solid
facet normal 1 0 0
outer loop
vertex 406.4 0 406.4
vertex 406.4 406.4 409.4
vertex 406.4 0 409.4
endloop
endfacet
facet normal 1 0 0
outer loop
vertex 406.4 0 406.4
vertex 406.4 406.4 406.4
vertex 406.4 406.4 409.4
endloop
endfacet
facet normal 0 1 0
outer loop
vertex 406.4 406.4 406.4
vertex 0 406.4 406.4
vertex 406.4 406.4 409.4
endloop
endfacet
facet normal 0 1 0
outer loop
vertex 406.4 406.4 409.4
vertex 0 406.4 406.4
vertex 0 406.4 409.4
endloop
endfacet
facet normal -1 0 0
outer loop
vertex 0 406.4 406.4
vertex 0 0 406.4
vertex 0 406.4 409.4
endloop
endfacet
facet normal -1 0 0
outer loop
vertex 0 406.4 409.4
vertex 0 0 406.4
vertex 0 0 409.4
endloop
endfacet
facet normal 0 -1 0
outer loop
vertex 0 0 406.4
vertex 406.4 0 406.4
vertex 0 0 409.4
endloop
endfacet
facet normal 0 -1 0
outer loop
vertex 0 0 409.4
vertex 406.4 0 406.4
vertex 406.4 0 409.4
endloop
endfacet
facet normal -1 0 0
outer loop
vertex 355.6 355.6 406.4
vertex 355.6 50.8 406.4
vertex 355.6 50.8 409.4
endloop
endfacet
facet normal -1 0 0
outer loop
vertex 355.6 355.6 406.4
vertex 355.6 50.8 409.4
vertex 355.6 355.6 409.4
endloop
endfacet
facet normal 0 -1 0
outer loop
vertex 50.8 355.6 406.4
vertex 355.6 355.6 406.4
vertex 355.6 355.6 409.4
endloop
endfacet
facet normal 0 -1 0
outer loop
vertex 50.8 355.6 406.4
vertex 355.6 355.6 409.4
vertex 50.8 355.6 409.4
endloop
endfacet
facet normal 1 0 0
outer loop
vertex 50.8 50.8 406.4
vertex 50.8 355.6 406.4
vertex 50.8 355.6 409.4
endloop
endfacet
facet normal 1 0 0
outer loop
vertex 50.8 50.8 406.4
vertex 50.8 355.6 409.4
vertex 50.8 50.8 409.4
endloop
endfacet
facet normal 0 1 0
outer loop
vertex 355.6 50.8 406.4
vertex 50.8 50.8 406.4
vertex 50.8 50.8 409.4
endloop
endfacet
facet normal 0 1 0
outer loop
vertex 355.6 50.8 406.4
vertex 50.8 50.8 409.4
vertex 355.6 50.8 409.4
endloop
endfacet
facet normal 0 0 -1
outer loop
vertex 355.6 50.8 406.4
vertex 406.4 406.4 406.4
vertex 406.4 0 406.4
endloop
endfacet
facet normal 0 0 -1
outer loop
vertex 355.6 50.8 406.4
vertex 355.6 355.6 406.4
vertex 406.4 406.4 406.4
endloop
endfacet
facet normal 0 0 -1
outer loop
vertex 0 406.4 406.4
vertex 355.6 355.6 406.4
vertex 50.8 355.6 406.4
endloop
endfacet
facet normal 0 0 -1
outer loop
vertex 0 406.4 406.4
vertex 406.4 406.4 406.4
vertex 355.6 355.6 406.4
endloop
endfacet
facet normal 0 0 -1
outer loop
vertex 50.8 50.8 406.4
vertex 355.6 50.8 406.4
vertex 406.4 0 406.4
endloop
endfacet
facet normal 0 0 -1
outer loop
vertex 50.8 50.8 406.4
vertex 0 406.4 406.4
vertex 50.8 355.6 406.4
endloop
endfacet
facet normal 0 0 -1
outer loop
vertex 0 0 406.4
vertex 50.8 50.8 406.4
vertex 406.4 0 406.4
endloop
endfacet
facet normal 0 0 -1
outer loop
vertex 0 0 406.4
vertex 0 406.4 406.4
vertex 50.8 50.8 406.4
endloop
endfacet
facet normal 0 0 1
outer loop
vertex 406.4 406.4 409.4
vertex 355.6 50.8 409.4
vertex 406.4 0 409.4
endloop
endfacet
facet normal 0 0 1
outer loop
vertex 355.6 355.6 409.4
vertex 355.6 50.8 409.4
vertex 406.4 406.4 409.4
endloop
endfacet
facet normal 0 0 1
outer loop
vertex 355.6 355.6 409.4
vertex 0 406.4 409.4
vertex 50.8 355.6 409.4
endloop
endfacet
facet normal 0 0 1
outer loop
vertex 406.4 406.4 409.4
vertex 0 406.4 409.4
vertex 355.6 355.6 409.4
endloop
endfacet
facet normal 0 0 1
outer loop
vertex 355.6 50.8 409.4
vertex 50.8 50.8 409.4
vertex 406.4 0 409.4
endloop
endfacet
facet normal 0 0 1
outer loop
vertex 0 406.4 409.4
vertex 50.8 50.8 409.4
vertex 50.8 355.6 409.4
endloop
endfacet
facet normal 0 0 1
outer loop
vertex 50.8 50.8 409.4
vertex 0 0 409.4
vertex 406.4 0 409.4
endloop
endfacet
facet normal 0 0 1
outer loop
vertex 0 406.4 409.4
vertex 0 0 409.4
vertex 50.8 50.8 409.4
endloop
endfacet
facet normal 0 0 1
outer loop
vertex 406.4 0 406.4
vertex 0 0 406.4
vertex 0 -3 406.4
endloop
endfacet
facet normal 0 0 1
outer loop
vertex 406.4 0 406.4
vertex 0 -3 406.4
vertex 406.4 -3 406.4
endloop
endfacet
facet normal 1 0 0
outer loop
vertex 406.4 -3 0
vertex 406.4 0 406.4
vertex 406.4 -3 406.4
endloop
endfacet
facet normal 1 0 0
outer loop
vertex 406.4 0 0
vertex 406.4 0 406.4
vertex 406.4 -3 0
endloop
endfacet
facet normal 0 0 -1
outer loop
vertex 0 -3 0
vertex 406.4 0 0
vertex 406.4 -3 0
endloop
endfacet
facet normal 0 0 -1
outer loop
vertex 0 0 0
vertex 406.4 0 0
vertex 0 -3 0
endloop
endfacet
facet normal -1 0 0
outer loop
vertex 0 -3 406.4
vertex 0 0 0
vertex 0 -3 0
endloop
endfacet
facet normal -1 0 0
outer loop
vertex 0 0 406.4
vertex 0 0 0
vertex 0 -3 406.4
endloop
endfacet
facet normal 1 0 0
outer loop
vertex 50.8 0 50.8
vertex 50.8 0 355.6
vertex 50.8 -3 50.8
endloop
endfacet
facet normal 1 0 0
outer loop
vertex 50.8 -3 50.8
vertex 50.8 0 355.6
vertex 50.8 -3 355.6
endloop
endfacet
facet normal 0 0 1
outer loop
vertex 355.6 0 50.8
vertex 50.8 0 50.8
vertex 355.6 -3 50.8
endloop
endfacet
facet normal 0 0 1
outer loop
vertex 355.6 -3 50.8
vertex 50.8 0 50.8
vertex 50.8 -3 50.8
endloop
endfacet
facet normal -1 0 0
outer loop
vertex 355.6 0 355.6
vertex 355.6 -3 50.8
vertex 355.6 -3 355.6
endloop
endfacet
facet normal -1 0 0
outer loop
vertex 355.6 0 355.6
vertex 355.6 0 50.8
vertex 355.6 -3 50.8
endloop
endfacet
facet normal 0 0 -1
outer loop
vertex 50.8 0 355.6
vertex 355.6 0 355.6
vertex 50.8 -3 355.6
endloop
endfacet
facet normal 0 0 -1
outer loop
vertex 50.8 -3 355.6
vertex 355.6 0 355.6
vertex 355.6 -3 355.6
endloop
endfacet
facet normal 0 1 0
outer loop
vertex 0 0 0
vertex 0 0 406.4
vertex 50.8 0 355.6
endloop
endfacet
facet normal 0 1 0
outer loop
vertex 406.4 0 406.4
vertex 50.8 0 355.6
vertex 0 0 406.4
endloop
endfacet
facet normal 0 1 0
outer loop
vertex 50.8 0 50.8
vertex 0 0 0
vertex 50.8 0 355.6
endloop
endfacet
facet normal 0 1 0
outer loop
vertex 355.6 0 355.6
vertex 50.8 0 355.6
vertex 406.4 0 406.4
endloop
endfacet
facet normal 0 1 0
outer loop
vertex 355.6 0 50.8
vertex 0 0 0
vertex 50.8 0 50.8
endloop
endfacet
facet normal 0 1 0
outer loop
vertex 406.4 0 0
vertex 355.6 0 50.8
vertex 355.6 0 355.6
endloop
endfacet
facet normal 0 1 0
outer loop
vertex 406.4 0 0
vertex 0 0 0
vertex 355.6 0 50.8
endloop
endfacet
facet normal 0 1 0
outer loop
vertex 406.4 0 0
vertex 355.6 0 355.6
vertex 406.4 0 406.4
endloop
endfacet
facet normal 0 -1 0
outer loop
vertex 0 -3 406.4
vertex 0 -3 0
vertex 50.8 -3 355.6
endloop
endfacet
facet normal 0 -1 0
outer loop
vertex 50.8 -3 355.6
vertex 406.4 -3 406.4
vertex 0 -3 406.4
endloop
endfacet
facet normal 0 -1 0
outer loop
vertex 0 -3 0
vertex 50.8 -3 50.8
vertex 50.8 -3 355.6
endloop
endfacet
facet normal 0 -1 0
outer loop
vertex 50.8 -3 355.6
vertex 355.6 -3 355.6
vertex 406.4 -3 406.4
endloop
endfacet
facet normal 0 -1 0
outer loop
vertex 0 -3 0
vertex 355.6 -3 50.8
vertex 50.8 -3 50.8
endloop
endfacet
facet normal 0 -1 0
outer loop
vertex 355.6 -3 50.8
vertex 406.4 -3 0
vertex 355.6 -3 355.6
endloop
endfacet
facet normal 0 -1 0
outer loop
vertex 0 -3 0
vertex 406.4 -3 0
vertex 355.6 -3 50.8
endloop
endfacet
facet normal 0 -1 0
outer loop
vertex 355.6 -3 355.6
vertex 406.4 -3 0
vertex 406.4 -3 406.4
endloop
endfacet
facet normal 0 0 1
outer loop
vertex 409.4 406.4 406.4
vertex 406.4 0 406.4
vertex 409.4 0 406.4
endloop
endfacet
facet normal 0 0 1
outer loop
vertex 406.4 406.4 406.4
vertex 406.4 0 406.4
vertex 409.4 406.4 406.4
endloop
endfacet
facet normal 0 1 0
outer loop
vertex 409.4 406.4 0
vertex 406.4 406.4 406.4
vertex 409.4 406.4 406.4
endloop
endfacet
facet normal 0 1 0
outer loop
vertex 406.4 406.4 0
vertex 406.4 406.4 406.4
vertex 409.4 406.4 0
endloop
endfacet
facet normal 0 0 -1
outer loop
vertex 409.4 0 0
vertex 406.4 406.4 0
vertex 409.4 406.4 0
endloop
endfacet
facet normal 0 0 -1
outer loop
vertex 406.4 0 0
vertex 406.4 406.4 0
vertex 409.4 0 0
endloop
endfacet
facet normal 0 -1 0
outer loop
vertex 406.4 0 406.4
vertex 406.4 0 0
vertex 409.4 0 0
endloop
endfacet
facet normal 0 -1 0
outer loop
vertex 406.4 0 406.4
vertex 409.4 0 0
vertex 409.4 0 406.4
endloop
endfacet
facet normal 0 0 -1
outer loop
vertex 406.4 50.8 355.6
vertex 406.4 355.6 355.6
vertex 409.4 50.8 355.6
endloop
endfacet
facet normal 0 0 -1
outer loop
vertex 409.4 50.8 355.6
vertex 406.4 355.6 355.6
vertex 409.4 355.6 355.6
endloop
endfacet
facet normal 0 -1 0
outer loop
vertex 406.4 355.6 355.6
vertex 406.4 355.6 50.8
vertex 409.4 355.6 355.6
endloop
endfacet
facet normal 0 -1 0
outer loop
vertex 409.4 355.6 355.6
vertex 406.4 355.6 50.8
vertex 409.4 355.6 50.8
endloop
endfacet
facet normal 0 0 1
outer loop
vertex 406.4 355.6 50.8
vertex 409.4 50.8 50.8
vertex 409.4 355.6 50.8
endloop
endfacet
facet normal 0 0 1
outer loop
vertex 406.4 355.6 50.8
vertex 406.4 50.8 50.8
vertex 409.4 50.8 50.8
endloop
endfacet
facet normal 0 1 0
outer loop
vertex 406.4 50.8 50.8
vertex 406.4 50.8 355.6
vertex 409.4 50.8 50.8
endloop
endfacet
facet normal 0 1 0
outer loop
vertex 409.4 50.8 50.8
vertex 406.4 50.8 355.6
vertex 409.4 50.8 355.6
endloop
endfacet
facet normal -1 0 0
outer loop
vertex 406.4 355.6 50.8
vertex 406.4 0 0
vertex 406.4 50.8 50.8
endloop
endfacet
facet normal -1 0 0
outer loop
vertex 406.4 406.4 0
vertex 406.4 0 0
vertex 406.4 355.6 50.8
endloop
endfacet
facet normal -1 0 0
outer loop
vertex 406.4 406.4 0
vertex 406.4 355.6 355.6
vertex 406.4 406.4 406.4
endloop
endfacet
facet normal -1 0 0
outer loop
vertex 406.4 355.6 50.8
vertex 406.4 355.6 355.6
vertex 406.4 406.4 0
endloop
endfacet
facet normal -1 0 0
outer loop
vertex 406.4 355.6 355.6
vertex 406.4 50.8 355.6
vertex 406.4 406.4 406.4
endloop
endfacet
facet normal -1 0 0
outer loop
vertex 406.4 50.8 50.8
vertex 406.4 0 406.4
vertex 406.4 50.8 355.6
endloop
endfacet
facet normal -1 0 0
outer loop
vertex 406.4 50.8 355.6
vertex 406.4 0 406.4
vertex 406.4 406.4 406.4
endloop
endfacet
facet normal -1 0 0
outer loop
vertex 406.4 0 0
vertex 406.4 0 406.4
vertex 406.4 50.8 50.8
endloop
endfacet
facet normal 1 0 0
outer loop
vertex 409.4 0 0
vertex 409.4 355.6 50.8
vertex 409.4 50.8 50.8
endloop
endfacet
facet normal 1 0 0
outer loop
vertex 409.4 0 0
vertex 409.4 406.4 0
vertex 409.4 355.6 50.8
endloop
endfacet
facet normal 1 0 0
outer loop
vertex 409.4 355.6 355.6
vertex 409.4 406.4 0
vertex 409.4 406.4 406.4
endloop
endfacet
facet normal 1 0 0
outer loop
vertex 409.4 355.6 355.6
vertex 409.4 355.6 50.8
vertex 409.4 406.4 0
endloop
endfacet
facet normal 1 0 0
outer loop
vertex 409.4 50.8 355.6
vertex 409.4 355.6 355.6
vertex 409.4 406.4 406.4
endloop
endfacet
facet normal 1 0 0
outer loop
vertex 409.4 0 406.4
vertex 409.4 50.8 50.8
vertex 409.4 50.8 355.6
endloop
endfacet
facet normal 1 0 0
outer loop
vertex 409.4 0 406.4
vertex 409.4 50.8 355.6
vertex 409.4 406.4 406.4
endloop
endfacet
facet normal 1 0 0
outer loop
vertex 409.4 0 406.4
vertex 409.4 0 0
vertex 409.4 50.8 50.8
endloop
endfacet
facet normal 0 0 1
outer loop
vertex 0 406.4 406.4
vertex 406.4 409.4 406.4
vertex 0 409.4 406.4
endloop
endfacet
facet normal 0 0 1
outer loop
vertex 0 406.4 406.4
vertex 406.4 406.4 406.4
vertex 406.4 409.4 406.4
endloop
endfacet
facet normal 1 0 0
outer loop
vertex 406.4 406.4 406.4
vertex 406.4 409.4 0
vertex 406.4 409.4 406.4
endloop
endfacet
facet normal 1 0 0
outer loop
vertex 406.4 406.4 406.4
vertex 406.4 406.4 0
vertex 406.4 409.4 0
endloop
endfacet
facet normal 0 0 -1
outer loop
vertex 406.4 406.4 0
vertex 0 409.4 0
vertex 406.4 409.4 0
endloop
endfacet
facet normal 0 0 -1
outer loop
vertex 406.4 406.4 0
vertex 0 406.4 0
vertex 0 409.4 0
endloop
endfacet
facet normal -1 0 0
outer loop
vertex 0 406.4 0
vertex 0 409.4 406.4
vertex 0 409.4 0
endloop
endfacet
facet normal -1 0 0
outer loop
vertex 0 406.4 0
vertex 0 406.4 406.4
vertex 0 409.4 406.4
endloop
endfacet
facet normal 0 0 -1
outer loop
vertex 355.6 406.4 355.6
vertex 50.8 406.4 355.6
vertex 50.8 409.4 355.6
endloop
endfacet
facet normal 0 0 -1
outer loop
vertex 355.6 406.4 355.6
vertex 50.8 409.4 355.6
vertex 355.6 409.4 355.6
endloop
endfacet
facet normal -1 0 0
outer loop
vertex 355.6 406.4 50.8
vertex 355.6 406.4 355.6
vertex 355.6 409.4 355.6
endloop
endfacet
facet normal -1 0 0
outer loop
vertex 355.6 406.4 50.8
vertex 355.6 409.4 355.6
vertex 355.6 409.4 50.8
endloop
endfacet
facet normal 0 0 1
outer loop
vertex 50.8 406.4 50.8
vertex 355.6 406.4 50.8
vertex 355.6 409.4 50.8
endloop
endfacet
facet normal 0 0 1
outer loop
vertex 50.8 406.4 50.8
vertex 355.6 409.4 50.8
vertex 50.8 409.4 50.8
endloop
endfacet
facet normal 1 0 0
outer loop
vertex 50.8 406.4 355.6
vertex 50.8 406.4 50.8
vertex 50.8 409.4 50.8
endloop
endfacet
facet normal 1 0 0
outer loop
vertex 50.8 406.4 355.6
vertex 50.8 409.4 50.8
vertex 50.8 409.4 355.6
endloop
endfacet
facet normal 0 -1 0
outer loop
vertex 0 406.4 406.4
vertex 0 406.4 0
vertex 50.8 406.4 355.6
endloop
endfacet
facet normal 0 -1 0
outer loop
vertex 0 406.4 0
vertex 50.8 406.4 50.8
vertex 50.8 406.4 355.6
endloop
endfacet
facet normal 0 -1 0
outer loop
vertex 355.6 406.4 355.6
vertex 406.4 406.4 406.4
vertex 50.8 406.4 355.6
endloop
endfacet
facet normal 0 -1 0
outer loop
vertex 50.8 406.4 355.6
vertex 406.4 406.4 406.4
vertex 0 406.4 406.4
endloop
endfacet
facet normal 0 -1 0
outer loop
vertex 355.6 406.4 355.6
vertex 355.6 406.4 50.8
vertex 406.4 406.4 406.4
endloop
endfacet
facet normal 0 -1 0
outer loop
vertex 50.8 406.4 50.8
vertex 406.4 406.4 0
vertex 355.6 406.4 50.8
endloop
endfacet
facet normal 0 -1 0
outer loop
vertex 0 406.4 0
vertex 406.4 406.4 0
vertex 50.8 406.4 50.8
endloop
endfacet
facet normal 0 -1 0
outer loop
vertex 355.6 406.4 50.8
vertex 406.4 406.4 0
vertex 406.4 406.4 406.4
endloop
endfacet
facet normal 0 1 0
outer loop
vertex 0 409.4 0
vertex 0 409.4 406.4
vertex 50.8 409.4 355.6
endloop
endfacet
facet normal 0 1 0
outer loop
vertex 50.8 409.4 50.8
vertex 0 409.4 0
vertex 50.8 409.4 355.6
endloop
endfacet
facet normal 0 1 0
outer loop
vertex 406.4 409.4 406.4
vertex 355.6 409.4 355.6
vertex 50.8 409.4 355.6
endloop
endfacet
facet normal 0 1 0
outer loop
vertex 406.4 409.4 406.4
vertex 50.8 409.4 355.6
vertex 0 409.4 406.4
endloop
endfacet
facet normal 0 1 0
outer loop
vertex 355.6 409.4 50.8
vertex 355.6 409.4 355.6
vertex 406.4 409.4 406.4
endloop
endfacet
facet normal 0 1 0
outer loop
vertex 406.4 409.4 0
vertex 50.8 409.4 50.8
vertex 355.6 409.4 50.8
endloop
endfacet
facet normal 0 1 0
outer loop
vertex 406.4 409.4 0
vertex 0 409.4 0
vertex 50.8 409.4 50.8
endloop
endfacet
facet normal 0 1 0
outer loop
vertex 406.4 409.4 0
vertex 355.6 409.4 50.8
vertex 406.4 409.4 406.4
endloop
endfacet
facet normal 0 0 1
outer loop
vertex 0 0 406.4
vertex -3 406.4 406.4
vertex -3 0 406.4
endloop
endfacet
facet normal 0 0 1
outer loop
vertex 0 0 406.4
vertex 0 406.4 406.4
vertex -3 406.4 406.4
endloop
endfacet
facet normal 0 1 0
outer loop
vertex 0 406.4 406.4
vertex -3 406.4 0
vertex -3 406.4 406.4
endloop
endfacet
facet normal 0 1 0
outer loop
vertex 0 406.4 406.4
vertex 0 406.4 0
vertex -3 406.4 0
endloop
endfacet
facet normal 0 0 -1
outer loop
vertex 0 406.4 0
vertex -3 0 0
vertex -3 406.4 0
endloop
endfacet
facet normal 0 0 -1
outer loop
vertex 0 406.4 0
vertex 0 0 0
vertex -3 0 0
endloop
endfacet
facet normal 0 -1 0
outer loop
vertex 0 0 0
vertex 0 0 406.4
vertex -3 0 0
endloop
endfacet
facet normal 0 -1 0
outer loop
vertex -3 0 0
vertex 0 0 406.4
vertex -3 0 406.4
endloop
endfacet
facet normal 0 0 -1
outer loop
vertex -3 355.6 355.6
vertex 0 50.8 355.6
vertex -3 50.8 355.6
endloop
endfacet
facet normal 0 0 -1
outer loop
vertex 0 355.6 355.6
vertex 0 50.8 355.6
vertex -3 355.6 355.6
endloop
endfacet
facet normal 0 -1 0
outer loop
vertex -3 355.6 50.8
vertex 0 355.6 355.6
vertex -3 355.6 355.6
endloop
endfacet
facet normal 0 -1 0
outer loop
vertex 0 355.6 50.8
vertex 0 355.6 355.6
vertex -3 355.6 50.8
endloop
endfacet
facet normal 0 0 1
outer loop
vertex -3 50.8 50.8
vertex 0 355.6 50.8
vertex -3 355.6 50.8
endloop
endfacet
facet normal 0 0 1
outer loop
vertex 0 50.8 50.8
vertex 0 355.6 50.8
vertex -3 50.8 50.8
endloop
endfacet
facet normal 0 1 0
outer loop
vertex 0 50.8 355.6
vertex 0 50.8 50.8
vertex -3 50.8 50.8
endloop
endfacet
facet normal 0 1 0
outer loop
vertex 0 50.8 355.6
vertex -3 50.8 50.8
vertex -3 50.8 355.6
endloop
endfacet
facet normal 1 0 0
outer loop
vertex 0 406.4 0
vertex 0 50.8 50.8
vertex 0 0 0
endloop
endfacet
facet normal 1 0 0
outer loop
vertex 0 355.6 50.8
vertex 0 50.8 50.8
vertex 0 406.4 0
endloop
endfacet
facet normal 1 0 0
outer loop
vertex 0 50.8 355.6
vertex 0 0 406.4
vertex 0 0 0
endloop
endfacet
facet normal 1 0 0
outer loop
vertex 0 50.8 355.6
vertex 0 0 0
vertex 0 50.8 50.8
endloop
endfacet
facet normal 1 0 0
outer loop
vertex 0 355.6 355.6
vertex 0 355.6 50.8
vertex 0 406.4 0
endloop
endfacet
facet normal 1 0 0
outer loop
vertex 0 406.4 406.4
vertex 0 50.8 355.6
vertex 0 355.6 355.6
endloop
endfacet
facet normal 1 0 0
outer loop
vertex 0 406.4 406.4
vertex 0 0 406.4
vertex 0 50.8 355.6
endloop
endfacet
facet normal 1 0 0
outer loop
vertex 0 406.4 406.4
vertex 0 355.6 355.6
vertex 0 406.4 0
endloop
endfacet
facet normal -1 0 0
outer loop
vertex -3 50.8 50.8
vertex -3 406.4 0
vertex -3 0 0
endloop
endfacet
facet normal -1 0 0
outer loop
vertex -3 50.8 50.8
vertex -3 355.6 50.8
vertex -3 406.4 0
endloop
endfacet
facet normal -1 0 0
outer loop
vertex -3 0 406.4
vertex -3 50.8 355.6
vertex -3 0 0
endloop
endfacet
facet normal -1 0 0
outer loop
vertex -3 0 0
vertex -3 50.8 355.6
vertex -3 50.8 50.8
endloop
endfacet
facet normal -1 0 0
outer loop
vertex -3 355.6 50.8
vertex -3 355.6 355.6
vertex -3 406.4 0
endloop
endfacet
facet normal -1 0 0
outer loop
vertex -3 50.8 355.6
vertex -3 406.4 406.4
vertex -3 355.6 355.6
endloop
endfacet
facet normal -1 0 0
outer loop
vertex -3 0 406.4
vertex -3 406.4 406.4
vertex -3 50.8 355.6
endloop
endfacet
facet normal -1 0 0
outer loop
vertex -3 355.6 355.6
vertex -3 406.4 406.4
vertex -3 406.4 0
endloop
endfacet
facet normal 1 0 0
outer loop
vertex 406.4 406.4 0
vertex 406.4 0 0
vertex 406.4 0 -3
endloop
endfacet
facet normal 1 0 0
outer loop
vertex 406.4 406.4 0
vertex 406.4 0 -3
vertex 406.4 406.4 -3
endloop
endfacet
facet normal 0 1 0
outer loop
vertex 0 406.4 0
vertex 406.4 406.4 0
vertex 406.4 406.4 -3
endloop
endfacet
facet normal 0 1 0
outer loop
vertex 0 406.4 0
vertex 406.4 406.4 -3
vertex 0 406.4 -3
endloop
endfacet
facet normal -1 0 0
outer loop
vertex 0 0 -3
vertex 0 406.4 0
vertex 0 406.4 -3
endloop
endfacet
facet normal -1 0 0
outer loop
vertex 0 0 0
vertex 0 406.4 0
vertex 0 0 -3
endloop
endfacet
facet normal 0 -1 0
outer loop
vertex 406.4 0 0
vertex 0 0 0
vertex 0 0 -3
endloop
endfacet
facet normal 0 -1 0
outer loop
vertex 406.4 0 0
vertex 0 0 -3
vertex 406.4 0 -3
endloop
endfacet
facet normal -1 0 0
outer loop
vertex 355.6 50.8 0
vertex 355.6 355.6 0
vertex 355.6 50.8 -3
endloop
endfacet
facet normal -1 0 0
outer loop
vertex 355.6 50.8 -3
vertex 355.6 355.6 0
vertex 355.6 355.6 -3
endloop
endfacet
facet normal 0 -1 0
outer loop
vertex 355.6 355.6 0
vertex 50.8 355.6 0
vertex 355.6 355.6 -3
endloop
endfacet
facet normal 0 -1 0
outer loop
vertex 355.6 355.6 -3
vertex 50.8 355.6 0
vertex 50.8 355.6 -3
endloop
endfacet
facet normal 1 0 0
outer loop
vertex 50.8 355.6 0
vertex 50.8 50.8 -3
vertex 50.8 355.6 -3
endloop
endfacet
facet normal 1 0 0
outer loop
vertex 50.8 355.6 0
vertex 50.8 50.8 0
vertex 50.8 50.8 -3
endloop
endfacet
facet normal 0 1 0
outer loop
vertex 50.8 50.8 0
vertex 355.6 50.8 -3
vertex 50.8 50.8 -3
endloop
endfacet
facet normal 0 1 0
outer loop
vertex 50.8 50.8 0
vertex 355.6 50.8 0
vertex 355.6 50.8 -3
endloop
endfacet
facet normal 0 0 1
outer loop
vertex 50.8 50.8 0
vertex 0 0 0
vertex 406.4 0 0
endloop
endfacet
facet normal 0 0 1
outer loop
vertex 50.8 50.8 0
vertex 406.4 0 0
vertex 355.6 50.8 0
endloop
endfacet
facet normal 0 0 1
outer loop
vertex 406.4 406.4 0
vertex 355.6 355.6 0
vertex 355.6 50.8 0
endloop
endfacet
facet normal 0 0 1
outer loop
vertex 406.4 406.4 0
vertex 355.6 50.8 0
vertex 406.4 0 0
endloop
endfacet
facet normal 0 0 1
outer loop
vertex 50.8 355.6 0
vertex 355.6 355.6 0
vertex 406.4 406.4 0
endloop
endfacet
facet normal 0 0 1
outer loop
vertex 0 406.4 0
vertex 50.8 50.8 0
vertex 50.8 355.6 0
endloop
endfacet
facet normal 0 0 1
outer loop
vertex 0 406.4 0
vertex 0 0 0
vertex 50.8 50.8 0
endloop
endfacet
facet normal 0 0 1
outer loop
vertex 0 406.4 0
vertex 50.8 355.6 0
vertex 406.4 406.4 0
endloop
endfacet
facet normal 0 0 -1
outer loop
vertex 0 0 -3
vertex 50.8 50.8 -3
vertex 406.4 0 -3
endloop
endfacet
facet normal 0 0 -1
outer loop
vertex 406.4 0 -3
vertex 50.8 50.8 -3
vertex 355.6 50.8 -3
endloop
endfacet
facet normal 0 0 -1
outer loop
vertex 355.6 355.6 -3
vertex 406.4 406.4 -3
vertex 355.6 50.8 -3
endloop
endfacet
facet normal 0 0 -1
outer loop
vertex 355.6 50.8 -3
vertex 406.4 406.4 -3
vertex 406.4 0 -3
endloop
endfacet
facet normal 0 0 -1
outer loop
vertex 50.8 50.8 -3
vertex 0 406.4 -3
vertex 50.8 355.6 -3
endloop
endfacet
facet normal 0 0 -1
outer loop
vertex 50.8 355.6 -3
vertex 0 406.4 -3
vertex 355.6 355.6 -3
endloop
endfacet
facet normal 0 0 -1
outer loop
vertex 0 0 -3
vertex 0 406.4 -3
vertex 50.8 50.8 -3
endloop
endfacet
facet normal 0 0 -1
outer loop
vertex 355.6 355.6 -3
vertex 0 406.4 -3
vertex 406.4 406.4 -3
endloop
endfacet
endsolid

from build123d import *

# Parameters (mm, degrees)
SKETCH001_W   = 406.4
SKETCH001_H   = 406.4
SKETCH001_W_2 = 304.8
SKETCH001_H_2 = 304.8
PAD_DEPTH     = 3
SKETCH005_W   = 406.4
SKETCH005_H   = 406.4
SKETCH005_W_2 = 304.8
SKETCH005_H_2 = 304.8
PAD001_DEPTH  = 3
SKETCH002_W   = 406.4
SKETCH002_H   = 406.4
SKETCH002_W_2 = 304.8
SKETCH002_H_2 = 304.8
PAD002_DEPTH  = 3
SKETCH_W      = 406.4
SKETCH_H      = 406.4
SKETCH_W_2    = 304.8
SKETCH_H_2    = 304.8
PAD003_DEPTH  = 3
SKETCH004_W   = 406.4
SKETCH004_H   = 406.4
SKETCH004_W_2 = 304.8
SKETCH004_H_2 = 304.8
PAD004_DEPTH  = 3
SKETCH003_W   = 406.4
SKETCH003_H   = 406.4
SKETCH003_W_2 = 304.8
SKETCH003_H_2 = 304.8
PAD005_DEPTH  = 3


with BuildPart() as pad:
    # Sketch001 → Pad (new body)
    with BuildSketch(Plane(origin=(0, 0, 406.4), x_dir=(0, 1, 0), z_dir=(0, 0, -1))):
        with Locations((203.2, 203.2)):
            Rectangle(SKETCH001_W, SKETCH001_H)
        with Locations((203.2, 203.2)):
            Rectangle(SKETCH001_W_2, SKETCH001_H_2, mode=Mode.SUBTRACT)
    extrude(amount=-PAD_DEPTH)


with BuildPart() as pad001:
    # Sketch005 → Pad001 (new body)
    with BuildSketch(Plane.XZ):
        with Locations((203.2, 203.2)):
            Rectangle(SKETCH005_W, SKETCH005_H)
        with Locations((203.2, 203.2)):
            Rectangle(SKETCH005_W_2, SKETCH005_H_2, mode=Mode.SUBTRACT)
    extrude(amount=PAD001_DEPTH)


with BuildPart() as pad002:
    # Sketch002 → Pad002 (new body)
    with BuildSketch(Plane(origin=(406.4, 4.8e-05, 0), x_dir=(0, 1, 0), z_dir=(1, 0, 0))):
        with Locations((203.2, 203.2)):
            Rectangle(SKETCH002_W, SKETCH002_H)
        with Locations((203.2, 203.2)):
            Rectangle(SKETCH002_W_2, SKETCH002_H_2, mode=Mode.SUBTRACT)
    extrude(amount=PAD002_DEPTH)


with BuildPart() as pad003:
    # Sketch → Pad003 (new body)
    with BuildSketch(Plane.XZ.offset(-406.400048)):
        with Locations((203.2, 203.2)):
            Rectangle(SKETCH_W, SKETCH_H)
        with Locations((203.2, 203.2)):
            Rectangle(SKETCH_W_2, SKETCH_H_2, mode=Mode.SUBTRACT)
    extrude(amount=-PAD003_DEPTH)


with BuildPart() as pad004:
    # Sketch004 → Pad004 (new body)
    with BuildSketch(Plane.YZ):
        with Locations((203.2, 203.2)):
            Rectangle(SKETCH004_W, SKETCH004_H)
        with Locations((203.2, 203.2)):
            Rectangle(SKETCH004_W_2, SKETCH004_H_2, mode=Mode.SUBTRACT)
    extrude(amount=-PAD004_DEPTH)


with BuildPart() as pad005:
    # Sketch003 → Pad005 (new body)
    with BuildSketch(Plane(origin=(0, 0, 0), x_dir=(0, 1, 0), z_dir=(0, 0, -1))):
        with Locations((203.2, 203.2)):
            Rectangle(SKETCH003_W, SKETCH003_H)
        with Locations((203.2, 203.2)):
            Rectangle(SKETCH003_W_2, SKETCH003_H_2, mode=Mode.SUBTRACT)
    extrude(amount=PAD005_DEPTH)


solid = Compound([pad.part, pad001.part, pad002.part, pad003.part, pad004.part, pad005.part])
